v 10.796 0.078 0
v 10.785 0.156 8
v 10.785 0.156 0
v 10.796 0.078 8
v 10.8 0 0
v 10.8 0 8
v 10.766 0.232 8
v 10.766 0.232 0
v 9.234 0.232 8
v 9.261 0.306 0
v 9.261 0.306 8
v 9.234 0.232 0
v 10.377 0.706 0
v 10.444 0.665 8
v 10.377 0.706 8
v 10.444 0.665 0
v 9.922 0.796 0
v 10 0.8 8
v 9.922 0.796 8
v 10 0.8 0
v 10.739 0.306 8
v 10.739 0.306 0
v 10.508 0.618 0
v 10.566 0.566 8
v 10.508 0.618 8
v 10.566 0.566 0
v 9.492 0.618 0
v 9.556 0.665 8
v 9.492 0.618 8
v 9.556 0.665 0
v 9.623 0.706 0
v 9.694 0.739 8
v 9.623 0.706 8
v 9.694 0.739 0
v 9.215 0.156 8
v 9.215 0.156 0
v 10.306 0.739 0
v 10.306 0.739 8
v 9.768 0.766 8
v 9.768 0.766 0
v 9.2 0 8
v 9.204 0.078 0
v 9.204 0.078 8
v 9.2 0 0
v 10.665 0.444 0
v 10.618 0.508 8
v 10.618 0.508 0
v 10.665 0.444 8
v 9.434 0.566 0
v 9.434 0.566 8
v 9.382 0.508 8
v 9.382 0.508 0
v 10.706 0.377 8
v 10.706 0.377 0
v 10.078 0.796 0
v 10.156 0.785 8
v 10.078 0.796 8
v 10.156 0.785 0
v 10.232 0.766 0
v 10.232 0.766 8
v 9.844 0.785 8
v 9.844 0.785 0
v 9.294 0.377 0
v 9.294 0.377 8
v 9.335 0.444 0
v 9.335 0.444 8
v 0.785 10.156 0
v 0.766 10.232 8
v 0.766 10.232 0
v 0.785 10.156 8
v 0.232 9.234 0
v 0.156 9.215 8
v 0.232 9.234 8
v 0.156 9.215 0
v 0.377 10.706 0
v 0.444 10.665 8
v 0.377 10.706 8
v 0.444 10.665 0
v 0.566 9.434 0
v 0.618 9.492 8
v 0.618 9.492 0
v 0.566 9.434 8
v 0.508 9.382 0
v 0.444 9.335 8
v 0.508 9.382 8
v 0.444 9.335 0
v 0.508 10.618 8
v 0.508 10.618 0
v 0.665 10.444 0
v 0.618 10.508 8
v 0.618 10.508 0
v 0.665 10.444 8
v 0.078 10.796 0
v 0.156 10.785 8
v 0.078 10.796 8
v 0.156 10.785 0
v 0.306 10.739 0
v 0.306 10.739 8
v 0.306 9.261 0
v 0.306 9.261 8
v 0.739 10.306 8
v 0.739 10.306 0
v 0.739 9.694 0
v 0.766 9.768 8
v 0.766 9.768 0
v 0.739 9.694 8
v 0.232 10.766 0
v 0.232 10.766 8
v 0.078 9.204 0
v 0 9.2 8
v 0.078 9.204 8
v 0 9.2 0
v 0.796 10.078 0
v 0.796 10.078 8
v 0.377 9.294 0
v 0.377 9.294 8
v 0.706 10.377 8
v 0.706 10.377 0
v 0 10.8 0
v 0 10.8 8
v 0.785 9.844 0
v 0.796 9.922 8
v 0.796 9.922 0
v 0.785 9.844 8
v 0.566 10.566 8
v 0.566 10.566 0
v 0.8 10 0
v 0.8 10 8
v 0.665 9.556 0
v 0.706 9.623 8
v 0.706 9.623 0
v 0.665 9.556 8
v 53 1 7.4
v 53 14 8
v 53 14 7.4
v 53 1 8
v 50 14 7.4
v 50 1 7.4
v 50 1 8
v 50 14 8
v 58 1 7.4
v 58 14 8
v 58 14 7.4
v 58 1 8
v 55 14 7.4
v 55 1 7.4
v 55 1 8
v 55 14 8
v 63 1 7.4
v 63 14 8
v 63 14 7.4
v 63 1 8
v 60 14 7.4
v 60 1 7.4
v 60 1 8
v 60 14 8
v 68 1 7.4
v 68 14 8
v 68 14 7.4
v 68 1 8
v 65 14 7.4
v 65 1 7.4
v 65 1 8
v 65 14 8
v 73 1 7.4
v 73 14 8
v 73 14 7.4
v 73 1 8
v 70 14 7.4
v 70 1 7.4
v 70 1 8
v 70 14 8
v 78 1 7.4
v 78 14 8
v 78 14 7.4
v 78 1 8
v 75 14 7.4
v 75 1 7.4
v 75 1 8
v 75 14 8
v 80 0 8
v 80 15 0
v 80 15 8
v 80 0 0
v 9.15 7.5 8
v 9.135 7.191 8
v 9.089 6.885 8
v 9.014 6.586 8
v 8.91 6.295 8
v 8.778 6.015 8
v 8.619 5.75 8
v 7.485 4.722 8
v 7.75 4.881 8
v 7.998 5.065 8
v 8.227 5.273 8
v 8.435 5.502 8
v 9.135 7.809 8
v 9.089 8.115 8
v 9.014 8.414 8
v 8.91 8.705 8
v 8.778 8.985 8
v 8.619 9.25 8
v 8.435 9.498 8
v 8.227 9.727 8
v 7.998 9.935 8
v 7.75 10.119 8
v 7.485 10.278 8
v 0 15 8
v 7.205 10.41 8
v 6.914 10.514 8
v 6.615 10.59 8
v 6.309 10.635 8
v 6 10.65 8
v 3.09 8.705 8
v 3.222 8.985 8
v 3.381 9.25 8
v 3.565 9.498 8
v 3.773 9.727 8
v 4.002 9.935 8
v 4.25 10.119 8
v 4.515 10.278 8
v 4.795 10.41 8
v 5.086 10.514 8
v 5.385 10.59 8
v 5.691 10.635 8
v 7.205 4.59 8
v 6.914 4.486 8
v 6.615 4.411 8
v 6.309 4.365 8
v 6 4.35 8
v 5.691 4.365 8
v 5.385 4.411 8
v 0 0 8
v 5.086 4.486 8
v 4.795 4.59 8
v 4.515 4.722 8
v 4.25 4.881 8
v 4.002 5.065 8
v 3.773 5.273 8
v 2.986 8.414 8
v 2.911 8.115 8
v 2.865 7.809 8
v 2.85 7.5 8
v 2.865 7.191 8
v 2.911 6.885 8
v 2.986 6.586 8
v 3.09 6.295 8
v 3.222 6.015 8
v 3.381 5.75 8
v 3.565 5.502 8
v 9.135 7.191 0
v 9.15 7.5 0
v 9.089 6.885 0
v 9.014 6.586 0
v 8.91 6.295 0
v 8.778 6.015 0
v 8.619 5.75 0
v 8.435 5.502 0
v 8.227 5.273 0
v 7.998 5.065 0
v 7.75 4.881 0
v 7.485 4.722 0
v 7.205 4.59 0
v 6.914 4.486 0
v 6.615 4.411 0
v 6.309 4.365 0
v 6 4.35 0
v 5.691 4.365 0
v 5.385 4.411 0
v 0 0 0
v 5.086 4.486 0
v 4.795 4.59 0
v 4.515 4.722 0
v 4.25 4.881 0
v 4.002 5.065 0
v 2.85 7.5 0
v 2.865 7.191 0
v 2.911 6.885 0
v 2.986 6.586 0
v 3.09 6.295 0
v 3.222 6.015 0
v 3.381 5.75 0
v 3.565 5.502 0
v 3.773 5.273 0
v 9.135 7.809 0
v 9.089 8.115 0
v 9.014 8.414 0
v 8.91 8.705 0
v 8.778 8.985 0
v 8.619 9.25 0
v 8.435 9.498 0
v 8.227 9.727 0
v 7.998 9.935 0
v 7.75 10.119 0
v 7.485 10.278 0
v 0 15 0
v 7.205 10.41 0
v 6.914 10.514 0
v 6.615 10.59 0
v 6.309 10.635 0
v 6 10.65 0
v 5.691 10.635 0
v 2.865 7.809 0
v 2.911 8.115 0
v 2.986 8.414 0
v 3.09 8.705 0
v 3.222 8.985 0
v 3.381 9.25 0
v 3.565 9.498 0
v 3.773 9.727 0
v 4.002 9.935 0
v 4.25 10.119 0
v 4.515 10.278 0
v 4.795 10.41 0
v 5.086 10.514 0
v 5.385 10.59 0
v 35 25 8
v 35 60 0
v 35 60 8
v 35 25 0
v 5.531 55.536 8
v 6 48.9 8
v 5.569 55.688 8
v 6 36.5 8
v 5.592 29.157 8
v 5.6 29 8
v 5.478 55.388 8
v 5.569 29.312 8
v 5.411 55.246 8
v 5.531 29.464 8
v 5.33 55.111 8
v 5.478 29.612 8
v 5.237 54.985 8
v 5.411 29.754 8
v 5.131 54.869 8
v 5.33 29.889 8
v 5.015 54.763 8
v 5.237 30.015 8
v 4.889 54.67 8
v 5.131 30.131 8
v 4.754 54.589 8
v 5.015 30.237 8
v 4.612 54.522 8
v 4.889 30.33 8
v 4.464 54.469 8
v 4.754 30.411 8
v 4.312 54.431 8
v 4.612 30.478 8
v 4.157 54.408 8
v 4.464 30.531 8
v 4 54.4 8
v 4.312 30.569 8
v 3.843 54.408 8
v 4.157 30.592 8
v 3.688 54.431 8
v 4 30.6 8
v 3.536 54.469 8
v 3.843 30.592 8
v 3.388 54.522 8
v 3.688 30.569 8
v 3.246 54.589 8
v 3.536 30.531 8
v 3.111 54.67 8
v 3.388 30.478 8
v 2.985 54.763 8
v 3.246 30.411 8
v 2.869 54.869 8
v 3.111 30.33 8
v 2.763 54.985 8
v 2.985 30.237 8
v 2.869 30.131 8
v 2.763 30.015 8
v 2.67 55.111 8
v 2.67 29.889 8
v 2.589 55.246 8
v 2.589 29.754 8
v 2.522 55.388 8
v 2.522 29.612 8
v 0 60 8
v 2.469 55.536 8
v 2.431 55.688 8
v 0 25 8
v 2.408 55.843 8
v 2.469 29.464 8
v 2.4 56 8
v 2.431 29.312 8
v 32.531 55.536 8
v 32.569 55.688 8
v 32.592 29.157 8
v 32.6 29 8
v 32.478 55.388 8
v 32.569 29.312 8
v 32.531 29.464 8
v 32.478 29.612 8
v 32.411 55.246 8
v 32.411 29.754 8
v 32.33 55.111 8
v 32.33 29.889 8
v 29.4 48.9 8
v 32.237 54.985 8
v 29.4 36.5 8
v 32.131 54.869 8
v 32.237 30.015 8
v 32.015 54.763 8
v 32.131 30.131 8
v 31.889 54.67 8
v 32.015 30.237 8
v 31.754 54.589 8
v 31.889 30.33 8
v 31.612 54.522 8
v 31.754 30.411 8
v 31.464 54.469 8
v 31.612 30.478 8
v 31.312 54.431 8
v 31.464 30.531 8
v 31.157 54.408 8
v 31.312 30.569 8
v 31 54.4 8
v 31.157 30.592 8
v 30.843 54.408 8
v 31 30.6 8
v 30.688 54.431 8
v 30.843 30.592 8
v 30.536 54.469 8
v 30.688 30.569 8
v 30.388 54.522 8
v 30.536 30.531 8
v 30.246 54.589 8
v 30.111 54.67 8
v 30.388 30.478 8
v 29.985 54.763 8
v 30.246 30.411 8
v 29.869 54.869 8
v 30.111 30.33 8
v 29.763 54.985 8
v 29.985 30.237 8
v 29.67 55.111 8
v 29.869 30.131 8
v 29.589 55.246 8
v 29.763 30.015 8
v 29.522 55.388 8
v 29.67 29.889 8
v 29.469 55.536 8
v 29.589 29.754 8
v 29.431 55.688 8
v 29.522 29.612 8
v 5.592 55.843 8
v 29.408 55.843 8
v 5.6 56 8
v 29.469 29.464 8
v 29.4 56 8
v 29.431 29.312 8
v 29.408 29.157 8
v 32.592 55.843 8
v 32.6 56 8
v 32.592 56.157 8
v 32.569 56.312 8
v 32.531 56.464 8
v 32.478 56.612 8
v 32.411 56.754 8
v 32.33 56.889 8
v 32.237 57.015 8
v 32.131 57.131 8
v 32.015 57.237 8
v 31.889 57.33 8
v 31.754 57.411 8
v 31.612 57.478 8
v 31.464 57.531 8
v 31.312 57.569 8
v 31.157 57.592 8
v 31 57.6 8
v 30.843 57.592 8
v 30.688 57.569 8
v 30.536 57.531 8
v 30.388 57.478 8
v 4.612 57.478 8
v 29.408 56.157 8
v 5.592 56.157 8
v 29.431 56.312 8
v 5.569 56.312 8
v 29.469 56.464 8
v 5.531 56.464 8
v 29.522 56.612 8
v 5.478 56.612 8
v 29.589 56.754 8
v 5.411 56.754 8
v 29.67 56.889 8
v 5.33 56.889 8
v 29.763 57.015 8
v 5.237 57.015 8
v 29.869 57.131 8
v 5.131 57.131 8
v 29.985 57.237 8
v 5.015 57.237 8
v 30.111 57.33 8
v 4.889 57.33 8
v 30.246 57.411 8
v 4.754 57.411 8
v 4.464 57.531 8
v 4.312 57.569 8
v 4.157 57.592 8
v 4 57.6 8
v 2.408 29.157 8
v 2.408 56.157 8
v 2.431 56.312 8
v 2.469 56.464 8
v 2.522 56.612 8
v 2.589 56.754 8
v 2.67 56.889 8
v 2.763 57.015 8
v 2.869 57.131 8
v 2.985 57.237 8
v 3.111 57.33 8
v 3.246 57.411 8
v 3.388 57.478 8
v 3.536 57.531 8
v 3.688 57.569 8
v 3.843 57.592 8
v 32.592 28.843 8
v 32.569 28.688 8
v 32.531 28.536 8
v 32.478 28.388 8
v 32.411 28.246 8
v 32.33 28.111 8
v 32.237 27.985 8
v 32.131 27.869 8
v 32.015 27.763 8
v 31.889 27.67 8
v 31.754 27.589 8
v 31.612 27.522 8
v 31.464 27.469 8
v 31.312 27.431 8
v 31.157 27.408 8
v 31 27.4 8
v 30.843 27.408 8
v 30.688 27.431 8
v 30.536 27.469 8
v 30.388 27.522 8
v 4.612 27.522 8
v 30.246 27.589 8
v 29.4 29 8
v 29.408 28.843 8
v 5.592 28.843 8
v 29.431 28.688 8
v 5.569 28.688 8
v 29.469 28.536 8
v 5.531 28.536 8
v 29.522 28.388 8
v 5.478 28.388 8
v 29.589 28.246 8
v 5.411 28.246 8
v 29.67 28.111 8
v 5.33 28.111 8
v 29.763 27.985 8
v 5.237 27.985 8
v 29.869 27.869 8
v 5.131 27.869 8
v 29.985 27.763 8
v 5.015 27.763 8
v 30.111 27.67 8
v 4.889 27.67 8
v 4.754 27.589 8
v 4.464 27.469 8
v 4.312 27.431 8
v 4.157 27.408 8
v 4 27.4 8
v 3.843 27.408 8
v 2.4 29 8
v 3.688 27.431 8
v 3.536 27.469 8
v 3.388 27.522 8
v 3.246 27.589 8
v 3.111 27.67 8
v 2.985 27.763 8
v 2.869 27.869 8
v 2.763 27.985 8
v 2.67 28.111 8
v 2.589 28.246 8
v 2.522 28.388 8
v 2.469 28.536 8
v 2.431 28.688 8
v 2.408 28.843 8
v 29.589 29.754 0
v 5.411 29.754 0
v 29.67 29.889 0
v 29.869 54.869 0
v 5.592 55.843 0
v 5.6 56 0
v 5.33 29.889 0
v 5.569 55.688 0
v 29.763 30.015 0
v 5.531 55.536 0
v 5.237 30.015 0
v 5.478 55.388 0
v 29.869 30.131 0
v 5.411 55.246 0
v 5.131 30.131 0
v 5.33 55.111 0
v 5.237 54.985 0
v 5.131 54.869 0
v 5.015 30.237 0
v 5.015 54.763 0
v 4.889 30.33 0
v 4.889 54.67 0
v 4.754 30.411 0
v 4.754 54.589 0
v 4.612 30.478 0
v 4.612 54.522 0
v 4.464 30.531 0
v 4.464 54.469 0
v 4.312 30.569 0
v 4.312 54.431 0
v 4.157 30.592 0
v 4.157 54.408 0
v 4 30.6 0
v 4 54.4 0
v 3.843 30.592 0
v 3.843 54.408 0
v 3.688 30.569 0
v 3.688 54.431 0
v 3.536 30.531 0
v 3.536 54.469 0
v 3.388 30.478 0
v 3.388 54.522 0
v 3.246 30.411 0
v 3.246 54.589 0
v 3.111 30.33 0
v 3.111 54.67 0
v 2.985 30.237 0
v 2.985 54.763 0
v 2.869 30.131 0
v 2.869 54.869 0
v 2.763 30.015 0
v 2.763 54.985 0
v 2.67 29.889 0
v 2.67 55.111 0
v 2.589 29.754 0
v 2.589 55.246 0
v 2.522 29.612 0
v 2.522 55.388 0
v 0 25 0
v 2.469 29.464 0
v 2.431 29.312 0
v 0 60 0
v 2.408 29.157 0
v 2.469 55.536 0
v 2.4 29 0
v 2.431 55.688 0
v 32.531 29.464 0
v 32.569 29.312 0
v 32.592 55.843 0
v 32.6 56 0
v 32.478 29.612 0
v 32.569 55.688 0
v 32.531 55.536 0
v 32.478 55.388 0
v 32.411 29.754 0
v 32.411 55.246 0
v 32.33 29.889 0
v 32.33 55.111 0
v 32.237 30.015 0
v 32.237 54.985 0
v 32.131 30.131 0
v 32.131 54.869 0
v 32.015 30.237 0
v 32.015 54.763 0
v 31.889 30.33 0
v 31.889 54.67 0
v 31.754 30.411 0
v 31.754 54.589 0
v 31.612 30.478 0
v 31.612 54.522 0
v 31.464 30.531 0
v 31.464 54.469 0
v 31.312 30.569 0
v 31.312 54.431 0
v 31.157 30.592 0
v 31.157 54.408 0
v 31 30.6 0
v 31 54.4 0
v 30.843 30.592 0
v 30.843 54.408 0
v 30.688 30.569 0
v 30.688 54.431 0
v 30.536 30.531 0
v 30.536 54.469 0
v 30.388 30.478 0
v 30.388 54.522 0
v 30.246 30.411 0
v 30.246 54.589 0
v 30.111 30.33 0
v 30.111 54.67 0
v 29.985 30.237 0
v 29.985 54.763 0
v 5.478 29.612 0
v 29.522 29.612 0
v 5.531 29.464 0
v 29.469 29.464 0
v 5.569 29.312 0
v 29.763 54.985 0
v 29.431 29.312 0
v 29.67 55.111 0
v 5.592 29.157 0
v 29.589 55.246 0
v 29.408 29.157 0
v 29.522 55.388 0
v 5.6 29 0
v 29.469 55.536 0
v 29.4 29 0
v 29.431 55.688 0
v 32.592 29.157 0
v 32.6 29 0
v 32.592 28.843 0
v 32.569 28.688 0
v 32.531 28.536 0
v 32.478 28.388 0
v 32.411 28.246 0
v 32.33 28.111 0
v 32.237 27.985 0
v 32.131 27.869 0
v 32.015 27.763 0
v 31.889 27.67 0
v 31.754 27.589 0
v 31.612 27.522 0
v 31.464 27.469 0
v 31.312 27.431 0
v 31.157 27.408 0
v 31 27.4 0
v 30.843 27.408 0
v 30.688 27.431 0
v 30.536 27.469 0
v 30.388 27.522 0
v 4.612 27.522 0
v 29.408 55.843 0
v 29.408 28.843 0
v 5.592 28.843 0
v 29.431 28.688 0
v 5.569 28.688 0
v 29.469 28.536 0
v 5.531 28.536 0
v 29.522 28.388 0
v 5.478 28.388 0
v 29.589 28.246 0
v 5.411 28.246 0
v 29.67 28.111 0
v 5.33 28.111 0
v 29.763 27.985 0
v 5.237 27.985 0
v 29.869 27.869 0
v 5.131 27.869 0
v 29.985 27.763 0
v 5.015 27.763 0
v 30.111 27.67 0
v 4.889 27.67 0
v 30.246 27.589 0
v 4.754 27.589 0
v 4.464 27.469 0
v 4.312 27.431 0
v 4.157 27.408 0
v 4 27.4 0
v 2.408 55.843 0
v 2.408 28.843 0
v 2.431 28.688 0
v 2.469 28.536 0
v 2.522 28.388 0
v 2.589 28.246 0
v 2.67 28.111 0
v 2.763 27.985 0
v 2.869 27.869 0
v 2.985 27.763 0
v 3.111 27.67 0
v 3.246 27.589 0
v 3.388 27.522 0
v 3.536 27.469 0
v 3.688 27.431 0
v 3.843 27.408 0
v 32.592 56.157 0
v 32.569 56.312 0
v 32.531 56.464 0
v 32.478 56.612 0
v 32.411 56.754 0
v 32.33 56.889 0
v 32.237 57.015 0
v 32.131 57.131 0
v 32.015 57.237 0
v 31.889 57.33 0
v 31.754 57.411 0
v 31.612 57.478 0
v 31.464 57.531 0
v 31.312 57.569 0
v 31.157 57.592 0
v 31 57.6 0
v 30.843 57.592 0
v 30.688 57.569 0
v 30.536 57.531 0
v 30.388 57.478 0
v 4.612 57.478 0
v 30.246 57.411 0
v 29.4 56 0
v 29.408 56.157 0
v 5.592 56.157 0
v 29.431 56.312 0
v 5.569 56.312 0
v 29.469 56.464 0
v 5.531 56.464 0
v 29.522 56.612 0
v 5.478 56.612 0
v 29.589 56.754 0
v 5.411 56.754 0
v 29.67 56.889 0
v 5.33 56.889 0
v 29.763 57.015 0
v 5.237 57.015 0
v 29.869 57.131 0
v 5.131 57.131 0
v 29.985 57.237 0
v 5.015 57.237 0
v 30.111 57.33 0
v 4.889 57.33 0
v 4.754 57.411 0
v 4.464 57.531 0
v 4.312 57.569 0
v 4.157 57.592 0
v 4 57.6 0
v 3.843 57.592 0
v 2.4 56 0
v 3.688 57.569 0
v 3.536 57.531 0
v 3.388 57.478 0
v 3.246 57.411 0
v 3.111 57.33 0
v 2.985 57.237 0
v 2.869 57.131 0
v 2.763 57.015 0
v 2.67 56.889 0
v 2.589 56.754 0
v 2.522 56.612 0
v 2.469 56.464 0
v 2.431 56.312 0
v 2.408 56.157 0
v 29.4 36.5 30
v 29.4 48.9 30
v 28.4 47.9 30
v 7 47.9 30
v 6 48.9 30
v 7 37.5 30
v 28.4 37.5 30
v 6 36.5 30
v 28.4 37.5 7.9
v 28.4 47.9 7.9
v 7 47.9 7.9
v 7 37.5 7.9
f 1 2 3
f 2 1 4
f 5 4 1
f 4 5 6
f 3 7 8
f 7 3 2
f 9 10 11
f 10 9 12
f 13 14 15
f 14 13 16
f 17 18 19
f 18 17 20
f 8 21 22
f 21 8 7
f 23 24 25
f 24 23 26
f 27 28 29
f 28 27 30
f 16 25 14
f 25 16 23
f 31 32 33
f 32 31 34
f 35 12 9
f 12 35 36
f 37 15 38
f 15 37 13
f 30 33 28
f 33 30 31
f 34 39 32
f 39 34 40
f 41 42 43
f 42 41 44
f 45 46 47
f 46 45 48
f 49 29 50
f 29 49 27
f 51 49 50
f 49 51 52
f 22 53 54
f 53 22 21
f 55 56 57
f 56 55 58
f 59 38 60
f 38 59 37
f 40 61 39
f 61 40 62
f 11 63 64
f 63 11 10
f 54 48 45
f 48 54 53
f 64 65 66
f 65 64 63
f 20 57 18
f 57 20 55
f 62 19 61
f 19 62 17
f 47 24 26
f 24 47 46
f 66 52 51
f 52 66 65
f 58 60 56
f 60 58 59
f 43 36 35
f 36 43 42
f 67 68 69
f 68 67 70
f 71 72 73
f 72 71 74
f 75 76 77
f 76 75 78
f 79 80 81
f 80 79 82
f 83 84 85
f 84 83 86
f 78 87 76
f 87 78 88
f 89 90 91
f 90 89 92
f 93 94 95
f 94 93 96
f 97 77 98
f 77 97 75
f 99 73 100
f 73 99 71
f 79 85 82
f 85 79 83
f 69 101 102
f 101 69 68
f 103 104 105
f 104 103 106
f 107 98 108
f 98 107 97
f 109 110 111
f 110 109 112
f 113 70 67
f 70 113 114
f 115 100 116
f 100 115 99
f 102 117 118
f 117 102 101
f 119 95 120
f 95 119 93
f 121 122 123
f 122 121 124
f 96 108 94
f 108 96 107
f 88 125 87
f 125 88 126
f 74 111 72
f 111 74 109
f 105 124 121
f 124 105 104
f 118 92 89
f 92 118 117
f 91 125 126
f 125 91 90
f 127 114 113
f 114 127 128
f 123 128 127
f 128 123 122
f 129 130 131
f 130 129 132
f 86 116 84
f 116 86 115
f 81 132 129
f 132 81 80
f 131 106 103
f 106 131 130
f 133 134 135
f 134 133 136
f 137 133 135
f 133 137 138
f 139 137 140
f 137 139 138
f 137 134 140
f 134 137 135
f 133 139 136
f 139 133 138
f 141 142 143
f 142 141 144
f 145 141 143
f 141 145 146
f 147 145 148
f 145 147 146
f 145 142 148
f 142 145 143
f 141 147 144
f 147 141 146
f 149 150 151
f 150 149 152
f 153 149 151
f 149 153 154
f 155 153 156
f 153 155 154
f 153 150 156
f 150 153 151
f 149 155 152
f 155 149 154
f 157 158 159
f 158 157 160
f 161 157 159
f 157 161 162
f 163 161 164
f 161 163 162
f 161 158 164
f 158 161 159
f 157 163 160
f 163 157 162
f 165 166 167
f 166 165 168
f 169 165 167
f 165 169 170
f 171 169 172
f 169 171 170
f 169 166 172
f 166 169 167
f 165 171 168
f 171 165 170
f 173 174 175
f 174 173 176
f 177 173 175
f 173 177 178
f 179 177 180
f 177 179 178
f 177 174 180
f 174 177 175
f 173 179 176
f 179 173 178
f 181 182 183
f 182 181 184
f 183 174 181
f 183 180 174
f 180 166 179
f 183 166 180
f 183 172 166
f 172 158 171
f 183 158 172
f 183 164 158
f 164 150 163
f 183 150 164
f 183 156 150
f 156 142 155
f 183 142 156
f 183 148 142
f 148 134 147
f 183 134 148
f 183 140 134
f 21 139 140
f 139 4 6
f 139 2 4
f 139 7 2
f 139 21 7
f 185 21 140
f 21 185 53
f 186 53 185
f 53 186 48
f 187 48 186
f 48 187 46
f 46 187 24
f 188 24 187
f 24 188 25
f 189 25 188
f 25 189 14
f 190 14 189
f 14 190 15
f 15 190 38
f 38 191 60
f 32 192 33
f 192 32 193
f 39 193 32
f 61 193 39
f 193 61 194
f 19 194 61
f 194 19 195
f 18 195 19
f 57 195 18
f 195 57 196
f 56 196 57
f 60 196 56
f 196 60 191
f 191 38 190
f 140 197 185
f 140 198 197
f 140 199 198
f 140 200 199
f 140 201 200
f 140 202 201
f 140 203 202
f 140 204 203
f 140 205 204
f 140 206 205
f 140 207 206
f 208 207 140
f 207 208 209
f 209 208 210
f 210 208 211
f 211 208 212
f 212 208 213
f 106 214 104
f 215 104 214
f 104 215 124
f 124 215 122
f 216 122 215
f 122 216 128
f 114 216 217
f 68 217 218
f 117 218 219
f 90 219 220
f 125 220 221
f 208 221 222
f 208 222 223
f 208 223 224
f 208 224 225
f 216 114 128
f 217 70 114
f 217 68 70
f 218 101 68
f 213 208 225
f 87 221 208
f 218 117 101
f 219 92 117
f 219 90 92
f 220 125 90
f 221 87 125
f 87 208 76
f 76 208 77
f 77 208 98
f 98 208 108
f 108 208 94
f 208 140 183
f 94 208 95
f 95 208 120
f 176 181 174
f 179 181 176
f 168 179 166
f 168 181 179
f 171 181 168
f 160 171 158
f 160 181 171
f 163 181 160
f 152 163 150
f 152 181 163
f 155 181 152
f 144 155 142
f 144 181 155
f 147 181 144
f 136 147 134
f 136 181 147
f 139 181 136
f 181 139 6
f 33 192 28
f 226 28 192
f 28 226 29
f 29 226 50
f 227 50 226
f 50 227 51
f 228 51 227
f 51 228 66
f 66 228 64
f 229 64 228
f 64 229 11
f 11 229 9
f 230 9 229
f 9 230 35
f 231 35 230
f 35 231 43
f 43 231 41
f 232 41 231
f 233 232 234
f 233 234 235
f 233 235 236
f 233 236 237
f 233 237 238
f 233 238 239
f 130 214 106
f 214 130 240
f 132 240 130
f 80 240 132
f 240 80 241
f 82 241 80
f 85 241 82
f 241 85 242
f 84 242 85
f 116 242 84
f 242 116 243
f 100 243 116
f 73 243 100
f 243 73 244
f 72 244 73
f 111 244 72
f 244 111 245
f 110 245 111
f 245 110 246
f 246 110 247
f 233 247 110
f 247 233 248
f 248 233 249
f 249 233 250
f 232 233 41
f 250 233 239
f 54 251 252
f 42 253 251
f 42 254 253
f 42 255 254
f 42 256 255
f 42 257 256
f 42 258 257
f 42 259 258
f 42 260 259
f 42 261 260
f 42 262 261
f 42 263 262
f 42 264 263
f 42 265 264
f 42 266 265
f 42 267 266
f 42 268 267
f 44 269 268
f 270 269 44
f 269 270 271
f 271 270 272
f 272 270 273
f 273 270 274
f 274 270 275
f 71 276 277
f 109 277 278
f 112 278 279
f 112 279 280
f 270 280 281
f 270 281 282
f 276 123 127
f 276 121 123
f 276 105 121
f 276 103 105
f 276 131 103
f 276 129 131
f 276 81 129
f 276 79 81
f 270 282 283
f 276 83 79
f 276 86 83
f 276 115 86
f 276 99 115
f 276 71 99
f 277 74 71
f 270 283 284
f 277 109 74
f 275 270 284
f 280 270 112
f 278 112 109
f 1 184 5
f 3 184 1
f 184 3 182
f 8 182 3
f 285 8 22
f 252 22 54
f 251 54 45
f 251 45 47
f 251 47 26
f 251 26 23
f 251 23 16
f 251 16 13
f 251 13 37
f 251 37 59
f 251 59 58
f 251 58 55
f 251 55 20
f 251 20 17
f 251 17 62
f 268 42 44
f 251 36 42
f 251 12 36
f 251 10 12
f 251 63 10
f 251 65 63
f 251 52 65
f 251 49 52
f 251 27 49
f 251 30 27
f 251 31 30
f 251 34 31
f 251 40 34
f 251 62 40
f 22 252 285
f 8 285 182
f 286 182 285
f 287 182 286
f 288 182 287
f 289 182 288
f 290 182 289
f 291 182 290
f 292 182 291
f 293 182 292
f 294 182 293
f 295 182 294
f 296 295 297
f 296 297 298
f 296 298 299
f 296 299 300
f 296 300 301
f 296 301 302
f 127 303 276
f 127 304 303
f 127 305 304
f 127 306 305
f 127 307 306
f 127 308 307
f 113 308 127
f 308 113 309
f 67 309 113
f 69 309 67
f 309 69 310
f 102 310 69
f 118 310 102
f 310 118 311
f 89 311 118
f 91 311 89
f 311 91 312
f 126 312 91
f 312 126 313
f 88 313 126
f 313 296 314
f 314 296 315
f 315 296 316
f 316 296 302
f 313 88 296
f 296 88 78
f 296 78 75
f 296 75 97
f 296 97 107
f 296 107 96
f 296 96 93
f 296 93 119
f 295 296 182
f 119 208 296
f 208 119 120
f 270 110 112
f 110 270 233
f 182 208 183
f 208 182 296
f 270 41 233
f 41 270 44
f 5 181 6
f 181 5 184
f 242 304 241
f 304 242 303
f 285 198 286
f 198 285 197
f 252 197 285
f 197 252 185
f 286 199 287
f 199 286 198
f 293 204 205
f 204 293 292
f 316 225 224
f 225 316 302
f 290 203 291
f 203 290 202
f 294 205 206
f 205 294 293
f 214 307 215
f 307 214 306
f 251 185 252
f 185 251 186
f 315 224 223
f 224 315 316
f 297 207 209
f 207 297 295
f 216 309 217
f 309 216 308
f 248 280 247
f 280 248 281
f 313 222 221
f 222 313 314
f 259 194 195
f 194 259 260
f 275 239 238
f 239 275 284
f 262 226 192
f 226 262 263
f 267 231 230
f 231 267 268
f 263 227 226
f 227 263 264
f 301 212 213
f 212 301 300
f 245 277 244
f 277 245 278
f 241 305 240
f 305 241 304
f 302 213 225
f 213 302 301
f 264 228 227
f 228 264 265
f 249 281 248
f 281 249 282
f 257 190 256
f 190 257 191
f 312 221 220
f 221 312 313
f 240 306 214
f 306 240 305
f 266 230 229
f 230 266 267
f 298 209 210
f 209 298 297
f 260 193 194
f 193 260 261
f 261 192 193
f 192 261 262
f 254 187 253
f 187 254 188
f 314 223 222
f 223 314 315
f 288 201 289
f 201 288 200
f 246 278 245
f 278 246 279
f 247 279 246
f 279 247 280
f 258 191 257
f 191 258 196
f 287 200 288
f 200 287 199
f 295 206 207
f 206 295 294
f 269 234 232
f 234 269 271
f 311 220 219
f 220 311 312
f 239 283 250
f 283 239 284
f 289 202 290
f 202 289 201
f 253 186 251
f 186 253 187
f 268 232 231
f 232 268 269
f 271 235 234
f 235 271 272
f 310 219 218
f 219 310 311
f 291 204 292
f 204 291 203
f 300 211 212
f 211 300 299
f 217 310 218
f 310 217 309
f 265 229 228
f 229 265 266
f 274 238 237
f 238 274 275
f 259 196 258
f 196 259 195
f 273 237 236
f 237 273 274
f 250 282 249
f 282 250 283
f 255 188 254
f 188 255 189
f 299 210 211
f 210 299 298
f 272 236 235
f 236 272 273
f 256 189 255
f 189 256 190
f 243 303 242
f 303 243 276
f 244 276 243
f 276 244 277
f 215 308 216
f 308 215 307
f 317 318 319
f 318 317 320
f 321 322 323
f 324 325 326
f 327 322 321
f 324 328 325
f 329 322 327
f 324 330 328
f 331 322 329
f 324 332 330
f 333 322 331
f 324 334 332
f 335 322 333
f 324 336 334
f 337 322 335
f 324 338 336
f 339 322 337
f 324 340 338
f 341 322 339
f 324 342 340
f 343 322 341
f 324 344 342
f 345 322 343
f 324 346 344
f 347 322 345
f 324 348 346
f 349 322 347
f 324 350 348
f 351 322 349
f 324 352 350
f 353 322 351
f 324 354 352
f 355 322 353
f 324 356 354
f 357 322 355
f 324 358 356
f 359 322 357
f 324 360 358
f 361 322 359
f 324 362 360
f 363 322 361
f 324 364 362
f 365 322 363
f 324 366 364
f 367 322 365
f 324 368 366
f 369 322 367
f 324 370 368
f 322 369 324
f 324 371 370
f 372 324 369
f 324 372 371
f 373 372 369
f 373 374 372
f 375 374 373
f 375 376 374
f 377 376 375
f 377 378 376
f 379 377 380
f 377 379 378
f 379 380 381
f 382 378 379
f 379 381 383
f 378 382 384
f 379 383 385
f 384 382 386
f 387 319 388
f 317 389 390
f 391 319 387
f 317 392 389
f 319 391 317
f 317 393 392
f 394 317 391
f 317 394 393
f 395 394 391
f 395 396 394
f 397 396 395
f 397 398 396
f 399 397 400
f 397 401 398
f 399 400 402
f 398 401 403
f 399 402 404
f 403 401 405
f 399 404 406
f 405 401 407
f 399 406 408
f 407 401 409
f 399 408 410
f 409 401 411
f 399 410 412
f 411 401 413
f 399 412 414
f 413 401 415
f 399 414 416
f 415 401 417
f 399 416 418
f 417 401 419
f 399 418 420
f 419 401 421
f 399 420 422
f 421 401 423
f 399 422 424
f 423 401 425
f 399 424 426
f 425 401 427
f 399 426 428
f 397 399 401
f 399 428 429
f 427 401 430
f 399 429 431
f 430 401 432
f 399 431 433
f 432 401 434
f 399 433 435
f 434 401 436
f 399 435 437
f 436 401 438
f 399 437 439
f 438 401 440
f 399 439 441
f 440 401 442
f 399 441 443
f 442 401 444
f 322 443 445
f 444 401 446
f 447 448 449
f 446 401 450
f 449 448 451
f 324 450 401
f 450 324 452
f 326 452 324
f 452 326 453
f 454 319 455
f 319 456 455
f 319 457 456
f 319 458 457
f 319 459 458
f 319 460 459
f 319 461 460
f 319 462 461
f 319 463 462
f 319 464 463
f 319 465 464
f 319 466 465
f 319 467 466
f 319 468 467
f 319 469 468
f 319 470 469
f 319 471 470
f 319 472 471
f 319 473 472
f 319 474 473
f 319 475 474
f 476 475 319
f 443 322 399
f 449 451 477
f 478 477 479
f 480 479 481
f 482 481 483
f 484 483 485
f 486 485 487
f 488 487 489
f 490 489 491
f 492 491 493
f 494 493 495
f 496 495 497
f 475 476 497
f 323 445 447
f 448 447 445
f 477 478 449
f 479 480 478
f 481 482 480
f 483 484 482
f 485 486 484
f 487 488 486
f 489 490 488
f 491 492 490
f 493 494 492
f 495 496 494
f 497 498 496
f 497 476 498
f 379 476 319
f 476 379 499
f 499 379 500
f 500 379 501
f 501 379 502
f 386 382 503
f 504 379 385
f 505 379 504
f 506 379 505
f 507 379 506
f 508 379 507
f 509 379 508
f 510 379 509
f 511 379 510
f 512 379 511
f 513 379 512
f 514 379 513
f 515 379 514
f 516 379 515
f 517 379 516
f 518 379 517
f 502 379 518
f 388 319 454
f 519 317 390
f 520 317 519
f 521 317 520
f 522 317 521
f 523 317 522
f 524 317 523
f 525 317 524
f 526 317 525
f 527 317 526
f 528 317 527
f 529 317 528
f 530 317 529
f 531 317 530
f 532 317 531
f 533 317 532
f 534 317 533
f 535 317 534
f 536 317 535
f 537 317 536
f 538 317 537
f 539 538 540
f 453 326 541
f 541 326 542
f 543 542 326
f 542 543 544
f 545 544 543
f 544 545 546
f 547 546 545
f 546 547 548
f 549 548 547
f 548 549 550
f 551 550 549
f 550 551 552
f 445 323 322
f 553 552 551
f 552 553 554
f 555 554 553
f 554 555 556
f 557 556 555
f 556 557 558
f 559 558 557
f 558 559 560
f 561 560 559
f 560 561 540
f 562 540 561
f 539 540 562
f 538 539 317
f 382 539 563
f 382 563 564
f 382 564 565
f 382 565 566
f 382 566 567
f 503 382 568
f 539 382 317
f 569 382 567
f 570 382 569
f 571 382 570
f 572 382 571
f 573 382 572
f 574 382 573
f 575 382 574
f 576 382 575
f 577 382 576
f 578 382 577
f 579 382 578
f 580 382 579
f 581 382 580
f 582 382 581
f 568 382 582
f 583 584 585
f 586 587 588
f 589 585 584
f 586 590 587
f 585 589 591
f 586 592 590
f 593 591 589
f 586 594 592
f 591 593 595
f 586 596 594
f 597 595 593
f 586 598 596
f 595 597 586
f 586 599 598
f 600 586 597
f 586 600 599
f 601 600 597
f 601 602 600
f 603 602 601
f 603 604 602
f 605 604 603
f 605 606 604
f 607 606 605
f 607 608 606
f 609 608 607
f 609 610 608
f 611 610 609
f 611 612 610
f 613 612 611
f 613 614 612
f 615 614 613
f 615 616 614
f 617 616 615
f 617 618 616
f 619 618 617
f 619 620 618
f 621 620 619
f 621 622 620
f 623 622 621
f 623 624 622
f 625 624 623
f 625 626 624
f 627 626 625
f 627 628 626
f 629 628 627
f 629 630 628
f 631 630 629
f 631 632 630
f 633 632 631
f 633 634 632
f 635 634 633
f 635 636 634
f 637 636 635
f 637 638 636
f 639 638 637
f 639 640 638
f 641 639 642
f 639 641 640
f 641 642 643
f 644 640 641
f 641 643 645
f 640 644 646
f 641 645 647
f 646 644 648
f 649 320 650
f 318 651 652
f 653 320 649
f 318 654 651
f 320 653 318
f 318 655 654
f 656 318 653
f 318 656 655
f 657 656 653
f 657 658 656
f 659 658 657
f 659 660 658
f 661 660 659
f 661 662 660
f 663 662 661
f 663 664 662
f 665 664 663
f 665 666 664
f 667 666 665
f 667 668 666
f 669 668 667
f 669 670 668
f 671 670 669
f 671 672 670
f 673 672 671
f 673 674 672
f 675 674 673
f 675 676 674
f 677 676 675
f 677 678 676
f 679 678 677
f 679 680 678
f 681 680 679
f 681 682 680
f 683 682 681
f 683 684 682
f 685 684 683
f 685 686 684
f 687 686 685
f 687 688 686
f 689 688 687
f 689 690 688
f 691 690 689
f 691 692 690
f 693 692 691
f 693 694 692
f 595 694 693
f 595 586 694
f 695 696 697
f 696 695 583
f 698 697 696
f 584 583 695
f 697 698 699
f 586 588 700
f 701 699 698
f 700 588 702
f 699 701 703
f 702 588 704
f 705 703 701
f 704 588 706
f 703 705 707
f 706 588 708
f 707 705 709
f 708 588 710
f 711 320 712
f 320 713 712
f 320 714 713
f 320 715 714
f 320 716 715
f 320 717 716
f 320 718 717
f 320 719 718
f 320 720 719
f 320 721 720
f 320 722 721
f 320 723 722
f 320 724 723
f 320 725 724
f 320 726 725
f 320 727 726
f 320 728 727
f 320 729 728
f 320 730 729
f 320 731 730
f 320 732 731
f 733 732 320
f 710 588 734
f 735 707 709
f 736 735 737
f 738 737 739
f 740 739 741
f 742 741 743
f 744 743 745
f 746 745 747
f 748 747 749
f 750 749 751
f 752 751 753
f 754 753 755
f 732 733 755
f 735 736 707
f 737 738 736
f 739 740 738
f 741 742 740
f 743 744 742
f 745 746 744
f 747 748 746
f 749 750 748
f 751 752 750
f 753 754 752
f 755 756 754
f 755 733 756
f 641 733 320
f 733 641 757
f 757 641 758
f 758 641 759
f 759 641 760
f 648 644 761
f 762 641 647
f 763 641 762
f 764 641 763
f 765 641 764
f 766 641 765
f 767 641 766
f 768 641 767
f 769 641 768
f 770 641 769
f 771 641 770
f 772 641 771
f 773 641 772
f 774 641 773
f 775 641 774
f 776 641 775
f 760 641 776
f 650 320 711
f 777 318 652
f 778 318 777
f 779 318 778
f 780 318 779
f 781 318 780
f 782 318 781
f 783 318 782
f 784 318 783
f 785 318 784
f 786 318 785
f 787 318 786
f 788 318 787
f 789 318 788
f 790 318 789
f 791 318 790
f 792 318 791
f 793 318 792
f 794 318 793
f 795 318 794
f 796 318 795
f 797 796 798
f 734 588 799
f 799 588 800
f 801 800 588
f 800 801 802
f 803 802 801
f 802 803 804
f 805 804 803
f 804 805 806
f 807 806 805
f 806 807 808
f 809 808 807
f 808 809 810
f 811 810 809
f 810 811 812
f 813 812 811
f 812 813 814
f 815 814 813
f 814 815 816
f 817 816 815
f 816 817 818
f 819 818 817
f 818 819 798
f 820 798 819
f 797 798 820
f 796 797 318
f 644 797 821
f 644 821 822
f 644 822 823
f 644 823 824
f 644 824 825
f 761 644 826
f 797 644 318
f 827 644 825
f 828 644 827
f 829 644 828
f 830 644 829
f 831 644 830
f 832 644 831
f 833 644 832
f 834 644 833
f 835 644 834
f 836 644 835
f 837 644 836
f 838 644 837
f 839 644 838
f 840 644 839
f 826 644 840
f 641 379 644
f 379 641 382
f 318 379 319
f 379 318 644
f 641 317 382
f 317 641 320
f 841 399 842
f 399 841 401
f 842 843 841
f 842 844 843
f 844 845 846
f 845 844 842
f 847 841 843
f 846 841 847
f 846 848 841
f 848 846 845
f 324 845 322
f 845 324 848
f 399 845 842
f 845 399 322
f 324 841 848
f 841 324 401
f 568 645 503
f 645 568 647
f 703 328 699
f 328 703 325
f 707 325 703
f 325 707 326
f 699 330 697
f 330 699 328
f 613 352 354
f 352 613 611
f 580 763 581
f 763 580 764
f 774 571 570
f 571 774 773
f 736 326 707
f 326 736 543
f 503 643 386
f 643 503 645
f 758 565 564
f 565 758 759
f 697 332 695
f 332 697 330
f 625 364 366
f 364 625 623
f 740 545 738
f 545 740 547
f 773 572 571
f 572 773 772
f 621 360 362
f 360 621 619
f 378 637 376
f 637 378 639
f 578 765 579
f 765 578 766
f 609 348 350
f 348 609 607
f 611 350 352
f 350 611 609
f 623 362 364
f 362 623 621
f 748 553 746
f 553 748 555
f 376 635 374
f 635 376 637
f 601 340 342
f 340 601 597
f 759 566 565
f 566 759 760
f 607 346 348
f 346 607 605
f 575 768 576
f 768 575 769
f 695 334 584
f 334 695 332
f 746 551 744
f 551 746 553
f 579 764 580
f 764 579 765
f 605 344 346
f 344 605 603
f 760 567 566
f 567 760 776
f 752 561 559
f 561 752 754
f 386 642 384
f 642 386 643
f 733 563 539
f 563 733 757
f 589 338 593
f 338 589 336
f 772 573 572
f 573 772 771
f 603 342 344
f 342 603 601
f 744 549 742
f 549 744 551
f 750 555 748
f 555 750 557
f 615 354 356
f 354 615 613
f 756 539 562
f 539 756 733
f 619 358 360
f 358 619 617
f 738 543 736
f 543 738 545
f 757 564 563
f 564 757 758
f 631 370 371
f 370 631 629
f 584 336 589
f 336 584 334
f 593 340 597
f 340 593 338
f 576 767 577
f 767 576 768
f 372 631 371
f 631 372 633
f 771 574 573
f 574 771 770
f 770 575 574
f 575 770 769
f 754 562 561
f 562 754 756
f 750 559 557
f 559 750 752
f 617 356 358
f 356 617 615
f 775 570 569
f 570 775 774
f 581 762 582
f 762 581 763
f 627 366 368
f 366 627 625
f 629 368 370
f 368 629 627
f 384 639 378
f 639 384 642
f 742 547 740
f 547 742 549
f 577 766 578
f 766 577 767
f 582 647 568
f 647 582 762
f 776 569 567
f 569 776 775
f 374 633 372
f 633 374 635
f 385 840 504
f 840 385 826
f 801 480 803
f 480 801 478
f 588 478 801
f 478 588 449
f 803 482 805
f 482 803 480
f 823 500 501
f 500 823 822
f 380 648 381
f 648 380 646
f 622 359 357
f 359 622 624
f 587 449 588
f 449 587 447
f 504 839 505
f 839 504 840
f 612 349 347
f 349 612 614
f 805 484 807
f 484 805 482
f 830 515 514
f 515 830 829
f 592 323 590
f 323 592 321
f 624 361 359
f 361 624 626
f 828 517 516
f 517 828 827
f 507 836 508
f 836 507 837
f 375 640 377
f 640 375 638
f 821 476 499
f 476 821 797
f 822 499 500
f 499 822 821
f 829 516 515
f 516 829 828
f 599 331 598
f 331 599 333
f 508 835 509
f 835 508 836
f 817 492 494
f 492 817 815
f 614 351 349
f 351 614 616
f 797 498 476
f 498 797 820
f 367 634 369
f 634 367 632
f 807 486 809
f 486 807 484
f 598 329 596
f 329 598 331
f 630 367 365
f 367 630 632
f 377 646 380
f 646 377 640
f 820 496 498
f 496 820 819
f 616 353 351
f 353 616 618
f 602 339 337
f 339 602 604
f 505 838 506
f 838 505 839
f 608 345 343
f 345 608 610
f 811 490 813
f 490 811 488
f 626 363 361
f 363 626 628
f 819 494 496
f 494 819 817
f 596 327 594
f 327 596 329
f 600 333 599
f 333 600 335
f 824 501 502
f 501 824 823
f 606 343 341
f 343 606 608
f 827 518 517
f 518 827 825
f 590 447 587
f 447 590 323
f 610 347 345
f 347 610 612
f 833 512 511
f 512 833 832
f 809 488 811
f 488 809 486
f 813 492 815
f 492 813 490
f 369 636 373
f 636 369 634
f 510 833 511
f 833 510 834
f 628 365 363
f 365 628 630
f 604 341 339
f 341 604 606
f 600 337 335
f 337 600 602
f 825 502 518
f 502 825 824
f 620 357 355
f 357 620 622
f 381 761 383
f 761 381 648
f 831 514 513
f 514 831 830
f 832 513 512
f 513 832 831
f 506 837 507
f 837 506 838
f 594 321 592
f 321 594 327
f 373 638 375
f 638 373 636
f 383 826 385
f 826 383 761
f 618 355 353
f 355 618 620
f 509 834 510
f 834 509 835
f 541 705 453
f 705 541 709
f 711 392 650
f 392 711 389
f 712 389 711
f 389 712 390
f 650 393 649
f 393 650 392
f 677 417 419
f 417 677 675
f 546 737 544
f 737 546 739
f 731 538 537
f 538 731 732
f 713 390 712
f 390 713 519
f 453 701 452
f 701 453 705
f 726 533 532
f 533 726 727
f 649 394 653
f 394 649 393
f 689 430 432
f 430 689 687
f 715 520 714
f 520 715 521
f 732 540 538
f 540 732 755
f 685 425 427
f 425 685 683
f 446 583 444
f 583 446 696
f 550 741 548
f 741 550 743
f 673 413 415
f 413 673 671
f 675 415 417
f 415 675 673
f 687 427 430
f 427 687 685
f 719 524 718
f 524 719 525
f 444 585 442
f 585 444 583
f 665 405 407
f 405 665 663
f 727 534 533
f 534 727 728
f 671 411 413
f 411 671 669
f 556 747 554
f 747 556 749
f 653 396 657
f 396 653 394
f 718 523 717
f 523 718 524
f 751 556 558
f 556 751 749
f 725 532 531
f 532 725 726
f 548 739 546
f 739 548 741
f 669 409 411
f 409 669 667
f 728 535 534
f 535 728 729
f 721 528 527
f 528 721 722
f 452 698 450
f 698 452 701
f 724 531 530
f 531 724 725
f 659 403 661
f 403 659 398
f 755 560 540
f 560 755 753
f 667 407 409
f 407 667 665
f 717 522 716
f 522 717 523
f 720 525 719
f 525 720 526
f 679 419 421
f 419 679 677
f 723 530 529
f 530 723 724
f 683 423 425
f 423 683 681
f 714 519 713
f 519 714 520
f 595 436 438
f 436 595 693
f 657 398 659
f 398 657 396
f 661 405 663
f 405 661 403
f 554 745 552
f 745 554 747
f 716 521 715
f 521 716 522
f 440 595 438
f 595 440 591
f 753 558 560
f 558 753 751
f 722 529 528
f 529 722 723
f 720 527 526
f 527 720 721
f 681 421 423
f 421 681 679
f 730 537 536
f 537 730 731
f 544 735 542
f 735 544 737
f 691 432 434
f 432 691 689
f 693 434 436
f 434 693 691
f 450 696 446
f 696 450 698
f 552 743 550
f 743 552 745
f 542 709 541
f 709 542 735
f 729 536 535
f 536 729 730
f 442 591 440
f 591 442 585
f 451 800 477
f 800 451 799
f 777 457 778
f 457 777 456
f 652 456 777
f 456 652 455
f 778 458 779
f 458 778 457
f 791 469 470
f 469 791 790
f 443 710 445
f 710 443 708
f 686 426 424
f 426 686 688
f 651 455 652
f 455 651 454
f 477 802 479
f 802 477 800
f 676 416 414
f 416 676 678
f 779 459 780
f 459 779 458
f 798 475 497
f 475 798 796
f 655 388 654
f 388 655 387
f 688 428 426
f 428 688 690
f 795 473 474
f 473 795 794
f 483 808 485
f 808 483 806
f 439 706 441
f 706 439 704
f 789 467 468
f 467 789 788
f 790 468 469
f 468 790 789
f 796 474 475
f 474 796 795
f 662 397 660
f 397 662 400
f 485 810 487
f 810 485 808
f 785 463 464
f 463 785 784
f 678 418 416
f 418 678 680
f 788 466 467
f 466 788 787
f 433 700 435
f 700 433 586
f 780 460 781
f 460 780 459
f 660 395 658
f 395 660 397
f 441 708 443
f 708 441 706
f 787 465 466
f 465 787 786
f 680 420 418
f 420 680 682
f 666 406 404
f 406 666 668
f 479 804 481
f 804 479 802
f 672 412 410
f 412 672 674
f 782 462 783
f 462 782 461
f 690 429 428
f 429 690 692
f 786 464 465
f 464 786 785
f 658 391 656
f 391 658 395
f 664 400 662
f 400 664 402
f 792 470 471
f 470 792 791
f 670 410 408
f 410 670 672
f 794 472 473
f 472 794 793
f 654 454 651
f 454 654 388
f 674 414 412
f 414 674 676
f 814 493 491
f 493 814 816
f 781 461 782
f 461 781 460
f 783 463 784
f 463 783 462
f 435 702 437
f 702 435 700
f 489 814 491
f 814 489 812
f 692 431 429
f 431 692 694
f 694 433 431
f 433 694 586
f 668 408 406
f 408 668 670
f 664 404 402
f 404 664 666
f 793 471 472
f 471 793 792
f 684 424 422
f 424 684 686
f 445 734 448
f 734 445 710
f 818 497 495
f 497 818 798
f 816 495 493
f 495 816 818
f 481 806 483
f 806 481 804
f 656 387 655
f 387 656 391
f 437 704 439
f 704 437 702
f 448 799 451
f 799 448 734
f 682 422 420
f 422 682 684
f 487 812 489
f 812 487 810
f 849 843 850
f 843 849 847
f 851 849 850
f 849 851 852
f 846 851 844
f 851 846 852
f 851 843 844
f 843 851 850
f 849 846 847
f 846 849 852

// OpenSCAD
// file: 00_common.scad
// vertical-lift-bridge :: COMMON PARAMETERS
// All dimensions in millimetres. Imported by every part file.
// Ratified parameters from audit Q1–Q7. Do not edit without group approval.

// ==== BUILD VOLUME ====
PRINTER_X = 220;
PRINTER_Y = 220;
PRINTER_Z = 250;
$fn = 64;  // smoothness for production prints

// ==== OVERALL FOOTPRINT ====
FOOTPRINT_X = 1200;        // along the road / cable axis
FOOTPRINT_Y = 600;         // across the river
BASE_T      = 6;           // base panel thickness
WATERWAY_W  = 200;         // navigable channel width

// ==== TOWERS ====
TOWER_H        = 350;       // total height (split-printed in 2 sections)
TOWER_SPLIT    = 175;       // join height
TOWER_W        = 90;        // width
TOWER_D        = 60;        // depth
TOWER_WALL     = 4;         // wall thickness
TOWER_INNER_W  = TOWER_W - 2*TOWER_WALL;
TOWER_INNER_D  = TOWER_D - 2*TOWER_WALL;
TOWER_SPACING  = 800;       // tower-to-tower centre distance

// ==== DECK ====
DECK_L  = 200;              // along the road
DECK_W  = 120;              // across the road
DECK_T  = 6;                // thickness
DECK_LIFT = 180;            // vertical travel

// ==== COUNTERWEIGHT ====
CW_L  = 60;
CW_W  = 40;
CW_H  = 60;
CW_WALL = 3;
CW_NUT_POCKET_D = 14;       // M8 nut across-flats + clearance
CW_NUT_POCKET_H = 8;

// ==== PULLEY ====
PULLEY_D       = 50;
PULLEY_BORE    = 6.2;       // 6 mm shaft + 0.2 clearance
PULLEY_W       = 20;
PULLEY_GROOVE_D = 1.4;      // 1 mm cable + 0.4 clearance
PULLEY_HUB_D   = 12;
PULLEY_HUB_H   = 8;

// ==== MOTOR ====
MOTOR_BODY_D   = 25;        // JGA25-370 body
MOTOR_BODY_L   = 32;
MOTOR_GEARBOX_L = 19;
MOTOR_SHAFT_D  = 6.2;       // 6 mm shaft + 0.2 clearance
MOTOR_FLAT_W   = 5.5;
MOTOR_MOUNT_W  = 35;
MOTOR_MOUNT_T  = 5;
MOTOR_MOUNT_HOLE_D = 3.2;   // M3 clearance

// ==== CABLE GUIDE ====
CABLE_GUIDE_W = 40;
CABLE_GUIDE_D = 30;
CABLE_GUIDE_H = 25;
CABLE_GUIDE_GROOVE_R = 0.7; // half of 1.4 cable channel

// ==== ROAD BARRIER ====
BARRIER_L = 80;
BARRIER_W = 15;
BARRIER_T = 8;
BARRIER_SERVO_HORN_D = 6;

// ==== PCB ENCLOSURE ====
PCB_X = 100;
PCB_Y = 80;
PCB_T = 1.6;
ENC_WALL = 2.5;
ENC_GAP  = 0.3;
ENC_PCB_STANDOFF_H = 5;
ENC_LID_H = 8;
ENC_BASE_H = PCB_T + ENC_PCB_STANDOFF_H + 8;
ENC_OUTER_X = PCB_X + 2*(ENC_WALL + ENC_GAP);
ENC_OUTER_Y = PCB_Y + 2*(ENC_WALL + ENC_GAP);

// ==== CAMERA MOUNT (ESP32-CAM AI-Thinker) ====
CAM_BOARD_X = 40.5;
CAM_BOARD_Y = 27;
CAM_BOARD_T = 1.6;
CAM_LENS_D  = 9.5;
CAM_GANTRY_H = 220;          // height above road for FOV
CAM_TILT_DEG = 25;

// ==== TFT DISPLAY MOUNT ====
// 2.8" ILI9341 with XPT2046 — common module 86×56×4 mm with 8 mm header on one side
TFT_BOARD_X = 86;
TFT_BOARD_Y = 56;
TFT_BOARD_T = 4;
TFT_VISIBLE_X = 58;          // active area
TFT_VISIBLE_Y = 44;
TFT_TILT_DEG = 35;           // Q5 ratified — 35° tilt
TFT_BEZEL = 5;
TFT_BACK_DEPTH = 18;         // header height behind board

// ==== HARDWARE ====
M3_CLEAR  = 3.2;
M3_TAP    = 2.8;
M3_HEAD_D = 6.0;
M3_HEAD_H = 3.0;
M3_INSERT_D = 4.2;           // brass heat-set insert OD
M3_INSERT_H = 5.0;
M8_BOLT_D = 8.4;
// main file
// 09_road_barrier.scad — servo-driven barrier arm + post
include <00_common.scad>

module barrier_arm() {
    // arm proper
    difference() {
        cube([BARRIER_L, BARRIER_W, BARRIER_T]);
        // servo horn pocket at one end
        translate([6, BARRIER_W/2, -0.1])
            cylinder(d=BARRIER_SERVO_HORN_D + 0.3, h=BARRIER_T + 0.2);
        // 4 horn screw holes
        for (a = [0:90:359])
            rotate([0,0,a])
                translate([6,0,0])
                    translate([4, 0, -0.1])
                        cylinder(d=1.6, h=BARRIER_T + 0.2);
        // tip warning slot (high-vis stripes painted later)
        for (i = [0:1:5])
            translate([BARRIER_L - 30 + i*5, 1, BARRIER_T - 0.6])
                cube([3, BARRIER_W - 2, 0.7]);
    }
}

module barrier_post() {
    // 25 mm tall post that bolts to base; servo body friction-fits
    SERVO_X = 23;
    SERVO_Y = 12;
    SERVO_H = 22;
    BASE = 35;
    difference() {
        union() {
            cube([BASE, BASE, BARRIER_T]);
            translate([(BASE - SERVO_X)/2, (BASE - SERVO_Y)/2, BARRIER_T])
                cube([SERVO_X + 0.4, SERVO_Y + 0.4, SERVO_H]);
        }
        // hollow servo cavity
        translate([(BASE - SERVO_X)/2 + 1, (BASE - SERVO_Y)/2 + 1, BARRIER_T - 0.1])
            cube([SERVO_X - 1.6, SERVO_Y - 1.6, SERVO_H + 0.2]);
        // base mounting holes
        for (x = [4, BASE - 4], y = [4, BASE - 4])
            translate([x, y, -0.1])
                cylinder(d=M3_CLEAR, h=BARRIER_T + 0.2);
    }
}

barrier_arm();
translate([0, BARRIER_W + 10, 0]) barrier_post();
